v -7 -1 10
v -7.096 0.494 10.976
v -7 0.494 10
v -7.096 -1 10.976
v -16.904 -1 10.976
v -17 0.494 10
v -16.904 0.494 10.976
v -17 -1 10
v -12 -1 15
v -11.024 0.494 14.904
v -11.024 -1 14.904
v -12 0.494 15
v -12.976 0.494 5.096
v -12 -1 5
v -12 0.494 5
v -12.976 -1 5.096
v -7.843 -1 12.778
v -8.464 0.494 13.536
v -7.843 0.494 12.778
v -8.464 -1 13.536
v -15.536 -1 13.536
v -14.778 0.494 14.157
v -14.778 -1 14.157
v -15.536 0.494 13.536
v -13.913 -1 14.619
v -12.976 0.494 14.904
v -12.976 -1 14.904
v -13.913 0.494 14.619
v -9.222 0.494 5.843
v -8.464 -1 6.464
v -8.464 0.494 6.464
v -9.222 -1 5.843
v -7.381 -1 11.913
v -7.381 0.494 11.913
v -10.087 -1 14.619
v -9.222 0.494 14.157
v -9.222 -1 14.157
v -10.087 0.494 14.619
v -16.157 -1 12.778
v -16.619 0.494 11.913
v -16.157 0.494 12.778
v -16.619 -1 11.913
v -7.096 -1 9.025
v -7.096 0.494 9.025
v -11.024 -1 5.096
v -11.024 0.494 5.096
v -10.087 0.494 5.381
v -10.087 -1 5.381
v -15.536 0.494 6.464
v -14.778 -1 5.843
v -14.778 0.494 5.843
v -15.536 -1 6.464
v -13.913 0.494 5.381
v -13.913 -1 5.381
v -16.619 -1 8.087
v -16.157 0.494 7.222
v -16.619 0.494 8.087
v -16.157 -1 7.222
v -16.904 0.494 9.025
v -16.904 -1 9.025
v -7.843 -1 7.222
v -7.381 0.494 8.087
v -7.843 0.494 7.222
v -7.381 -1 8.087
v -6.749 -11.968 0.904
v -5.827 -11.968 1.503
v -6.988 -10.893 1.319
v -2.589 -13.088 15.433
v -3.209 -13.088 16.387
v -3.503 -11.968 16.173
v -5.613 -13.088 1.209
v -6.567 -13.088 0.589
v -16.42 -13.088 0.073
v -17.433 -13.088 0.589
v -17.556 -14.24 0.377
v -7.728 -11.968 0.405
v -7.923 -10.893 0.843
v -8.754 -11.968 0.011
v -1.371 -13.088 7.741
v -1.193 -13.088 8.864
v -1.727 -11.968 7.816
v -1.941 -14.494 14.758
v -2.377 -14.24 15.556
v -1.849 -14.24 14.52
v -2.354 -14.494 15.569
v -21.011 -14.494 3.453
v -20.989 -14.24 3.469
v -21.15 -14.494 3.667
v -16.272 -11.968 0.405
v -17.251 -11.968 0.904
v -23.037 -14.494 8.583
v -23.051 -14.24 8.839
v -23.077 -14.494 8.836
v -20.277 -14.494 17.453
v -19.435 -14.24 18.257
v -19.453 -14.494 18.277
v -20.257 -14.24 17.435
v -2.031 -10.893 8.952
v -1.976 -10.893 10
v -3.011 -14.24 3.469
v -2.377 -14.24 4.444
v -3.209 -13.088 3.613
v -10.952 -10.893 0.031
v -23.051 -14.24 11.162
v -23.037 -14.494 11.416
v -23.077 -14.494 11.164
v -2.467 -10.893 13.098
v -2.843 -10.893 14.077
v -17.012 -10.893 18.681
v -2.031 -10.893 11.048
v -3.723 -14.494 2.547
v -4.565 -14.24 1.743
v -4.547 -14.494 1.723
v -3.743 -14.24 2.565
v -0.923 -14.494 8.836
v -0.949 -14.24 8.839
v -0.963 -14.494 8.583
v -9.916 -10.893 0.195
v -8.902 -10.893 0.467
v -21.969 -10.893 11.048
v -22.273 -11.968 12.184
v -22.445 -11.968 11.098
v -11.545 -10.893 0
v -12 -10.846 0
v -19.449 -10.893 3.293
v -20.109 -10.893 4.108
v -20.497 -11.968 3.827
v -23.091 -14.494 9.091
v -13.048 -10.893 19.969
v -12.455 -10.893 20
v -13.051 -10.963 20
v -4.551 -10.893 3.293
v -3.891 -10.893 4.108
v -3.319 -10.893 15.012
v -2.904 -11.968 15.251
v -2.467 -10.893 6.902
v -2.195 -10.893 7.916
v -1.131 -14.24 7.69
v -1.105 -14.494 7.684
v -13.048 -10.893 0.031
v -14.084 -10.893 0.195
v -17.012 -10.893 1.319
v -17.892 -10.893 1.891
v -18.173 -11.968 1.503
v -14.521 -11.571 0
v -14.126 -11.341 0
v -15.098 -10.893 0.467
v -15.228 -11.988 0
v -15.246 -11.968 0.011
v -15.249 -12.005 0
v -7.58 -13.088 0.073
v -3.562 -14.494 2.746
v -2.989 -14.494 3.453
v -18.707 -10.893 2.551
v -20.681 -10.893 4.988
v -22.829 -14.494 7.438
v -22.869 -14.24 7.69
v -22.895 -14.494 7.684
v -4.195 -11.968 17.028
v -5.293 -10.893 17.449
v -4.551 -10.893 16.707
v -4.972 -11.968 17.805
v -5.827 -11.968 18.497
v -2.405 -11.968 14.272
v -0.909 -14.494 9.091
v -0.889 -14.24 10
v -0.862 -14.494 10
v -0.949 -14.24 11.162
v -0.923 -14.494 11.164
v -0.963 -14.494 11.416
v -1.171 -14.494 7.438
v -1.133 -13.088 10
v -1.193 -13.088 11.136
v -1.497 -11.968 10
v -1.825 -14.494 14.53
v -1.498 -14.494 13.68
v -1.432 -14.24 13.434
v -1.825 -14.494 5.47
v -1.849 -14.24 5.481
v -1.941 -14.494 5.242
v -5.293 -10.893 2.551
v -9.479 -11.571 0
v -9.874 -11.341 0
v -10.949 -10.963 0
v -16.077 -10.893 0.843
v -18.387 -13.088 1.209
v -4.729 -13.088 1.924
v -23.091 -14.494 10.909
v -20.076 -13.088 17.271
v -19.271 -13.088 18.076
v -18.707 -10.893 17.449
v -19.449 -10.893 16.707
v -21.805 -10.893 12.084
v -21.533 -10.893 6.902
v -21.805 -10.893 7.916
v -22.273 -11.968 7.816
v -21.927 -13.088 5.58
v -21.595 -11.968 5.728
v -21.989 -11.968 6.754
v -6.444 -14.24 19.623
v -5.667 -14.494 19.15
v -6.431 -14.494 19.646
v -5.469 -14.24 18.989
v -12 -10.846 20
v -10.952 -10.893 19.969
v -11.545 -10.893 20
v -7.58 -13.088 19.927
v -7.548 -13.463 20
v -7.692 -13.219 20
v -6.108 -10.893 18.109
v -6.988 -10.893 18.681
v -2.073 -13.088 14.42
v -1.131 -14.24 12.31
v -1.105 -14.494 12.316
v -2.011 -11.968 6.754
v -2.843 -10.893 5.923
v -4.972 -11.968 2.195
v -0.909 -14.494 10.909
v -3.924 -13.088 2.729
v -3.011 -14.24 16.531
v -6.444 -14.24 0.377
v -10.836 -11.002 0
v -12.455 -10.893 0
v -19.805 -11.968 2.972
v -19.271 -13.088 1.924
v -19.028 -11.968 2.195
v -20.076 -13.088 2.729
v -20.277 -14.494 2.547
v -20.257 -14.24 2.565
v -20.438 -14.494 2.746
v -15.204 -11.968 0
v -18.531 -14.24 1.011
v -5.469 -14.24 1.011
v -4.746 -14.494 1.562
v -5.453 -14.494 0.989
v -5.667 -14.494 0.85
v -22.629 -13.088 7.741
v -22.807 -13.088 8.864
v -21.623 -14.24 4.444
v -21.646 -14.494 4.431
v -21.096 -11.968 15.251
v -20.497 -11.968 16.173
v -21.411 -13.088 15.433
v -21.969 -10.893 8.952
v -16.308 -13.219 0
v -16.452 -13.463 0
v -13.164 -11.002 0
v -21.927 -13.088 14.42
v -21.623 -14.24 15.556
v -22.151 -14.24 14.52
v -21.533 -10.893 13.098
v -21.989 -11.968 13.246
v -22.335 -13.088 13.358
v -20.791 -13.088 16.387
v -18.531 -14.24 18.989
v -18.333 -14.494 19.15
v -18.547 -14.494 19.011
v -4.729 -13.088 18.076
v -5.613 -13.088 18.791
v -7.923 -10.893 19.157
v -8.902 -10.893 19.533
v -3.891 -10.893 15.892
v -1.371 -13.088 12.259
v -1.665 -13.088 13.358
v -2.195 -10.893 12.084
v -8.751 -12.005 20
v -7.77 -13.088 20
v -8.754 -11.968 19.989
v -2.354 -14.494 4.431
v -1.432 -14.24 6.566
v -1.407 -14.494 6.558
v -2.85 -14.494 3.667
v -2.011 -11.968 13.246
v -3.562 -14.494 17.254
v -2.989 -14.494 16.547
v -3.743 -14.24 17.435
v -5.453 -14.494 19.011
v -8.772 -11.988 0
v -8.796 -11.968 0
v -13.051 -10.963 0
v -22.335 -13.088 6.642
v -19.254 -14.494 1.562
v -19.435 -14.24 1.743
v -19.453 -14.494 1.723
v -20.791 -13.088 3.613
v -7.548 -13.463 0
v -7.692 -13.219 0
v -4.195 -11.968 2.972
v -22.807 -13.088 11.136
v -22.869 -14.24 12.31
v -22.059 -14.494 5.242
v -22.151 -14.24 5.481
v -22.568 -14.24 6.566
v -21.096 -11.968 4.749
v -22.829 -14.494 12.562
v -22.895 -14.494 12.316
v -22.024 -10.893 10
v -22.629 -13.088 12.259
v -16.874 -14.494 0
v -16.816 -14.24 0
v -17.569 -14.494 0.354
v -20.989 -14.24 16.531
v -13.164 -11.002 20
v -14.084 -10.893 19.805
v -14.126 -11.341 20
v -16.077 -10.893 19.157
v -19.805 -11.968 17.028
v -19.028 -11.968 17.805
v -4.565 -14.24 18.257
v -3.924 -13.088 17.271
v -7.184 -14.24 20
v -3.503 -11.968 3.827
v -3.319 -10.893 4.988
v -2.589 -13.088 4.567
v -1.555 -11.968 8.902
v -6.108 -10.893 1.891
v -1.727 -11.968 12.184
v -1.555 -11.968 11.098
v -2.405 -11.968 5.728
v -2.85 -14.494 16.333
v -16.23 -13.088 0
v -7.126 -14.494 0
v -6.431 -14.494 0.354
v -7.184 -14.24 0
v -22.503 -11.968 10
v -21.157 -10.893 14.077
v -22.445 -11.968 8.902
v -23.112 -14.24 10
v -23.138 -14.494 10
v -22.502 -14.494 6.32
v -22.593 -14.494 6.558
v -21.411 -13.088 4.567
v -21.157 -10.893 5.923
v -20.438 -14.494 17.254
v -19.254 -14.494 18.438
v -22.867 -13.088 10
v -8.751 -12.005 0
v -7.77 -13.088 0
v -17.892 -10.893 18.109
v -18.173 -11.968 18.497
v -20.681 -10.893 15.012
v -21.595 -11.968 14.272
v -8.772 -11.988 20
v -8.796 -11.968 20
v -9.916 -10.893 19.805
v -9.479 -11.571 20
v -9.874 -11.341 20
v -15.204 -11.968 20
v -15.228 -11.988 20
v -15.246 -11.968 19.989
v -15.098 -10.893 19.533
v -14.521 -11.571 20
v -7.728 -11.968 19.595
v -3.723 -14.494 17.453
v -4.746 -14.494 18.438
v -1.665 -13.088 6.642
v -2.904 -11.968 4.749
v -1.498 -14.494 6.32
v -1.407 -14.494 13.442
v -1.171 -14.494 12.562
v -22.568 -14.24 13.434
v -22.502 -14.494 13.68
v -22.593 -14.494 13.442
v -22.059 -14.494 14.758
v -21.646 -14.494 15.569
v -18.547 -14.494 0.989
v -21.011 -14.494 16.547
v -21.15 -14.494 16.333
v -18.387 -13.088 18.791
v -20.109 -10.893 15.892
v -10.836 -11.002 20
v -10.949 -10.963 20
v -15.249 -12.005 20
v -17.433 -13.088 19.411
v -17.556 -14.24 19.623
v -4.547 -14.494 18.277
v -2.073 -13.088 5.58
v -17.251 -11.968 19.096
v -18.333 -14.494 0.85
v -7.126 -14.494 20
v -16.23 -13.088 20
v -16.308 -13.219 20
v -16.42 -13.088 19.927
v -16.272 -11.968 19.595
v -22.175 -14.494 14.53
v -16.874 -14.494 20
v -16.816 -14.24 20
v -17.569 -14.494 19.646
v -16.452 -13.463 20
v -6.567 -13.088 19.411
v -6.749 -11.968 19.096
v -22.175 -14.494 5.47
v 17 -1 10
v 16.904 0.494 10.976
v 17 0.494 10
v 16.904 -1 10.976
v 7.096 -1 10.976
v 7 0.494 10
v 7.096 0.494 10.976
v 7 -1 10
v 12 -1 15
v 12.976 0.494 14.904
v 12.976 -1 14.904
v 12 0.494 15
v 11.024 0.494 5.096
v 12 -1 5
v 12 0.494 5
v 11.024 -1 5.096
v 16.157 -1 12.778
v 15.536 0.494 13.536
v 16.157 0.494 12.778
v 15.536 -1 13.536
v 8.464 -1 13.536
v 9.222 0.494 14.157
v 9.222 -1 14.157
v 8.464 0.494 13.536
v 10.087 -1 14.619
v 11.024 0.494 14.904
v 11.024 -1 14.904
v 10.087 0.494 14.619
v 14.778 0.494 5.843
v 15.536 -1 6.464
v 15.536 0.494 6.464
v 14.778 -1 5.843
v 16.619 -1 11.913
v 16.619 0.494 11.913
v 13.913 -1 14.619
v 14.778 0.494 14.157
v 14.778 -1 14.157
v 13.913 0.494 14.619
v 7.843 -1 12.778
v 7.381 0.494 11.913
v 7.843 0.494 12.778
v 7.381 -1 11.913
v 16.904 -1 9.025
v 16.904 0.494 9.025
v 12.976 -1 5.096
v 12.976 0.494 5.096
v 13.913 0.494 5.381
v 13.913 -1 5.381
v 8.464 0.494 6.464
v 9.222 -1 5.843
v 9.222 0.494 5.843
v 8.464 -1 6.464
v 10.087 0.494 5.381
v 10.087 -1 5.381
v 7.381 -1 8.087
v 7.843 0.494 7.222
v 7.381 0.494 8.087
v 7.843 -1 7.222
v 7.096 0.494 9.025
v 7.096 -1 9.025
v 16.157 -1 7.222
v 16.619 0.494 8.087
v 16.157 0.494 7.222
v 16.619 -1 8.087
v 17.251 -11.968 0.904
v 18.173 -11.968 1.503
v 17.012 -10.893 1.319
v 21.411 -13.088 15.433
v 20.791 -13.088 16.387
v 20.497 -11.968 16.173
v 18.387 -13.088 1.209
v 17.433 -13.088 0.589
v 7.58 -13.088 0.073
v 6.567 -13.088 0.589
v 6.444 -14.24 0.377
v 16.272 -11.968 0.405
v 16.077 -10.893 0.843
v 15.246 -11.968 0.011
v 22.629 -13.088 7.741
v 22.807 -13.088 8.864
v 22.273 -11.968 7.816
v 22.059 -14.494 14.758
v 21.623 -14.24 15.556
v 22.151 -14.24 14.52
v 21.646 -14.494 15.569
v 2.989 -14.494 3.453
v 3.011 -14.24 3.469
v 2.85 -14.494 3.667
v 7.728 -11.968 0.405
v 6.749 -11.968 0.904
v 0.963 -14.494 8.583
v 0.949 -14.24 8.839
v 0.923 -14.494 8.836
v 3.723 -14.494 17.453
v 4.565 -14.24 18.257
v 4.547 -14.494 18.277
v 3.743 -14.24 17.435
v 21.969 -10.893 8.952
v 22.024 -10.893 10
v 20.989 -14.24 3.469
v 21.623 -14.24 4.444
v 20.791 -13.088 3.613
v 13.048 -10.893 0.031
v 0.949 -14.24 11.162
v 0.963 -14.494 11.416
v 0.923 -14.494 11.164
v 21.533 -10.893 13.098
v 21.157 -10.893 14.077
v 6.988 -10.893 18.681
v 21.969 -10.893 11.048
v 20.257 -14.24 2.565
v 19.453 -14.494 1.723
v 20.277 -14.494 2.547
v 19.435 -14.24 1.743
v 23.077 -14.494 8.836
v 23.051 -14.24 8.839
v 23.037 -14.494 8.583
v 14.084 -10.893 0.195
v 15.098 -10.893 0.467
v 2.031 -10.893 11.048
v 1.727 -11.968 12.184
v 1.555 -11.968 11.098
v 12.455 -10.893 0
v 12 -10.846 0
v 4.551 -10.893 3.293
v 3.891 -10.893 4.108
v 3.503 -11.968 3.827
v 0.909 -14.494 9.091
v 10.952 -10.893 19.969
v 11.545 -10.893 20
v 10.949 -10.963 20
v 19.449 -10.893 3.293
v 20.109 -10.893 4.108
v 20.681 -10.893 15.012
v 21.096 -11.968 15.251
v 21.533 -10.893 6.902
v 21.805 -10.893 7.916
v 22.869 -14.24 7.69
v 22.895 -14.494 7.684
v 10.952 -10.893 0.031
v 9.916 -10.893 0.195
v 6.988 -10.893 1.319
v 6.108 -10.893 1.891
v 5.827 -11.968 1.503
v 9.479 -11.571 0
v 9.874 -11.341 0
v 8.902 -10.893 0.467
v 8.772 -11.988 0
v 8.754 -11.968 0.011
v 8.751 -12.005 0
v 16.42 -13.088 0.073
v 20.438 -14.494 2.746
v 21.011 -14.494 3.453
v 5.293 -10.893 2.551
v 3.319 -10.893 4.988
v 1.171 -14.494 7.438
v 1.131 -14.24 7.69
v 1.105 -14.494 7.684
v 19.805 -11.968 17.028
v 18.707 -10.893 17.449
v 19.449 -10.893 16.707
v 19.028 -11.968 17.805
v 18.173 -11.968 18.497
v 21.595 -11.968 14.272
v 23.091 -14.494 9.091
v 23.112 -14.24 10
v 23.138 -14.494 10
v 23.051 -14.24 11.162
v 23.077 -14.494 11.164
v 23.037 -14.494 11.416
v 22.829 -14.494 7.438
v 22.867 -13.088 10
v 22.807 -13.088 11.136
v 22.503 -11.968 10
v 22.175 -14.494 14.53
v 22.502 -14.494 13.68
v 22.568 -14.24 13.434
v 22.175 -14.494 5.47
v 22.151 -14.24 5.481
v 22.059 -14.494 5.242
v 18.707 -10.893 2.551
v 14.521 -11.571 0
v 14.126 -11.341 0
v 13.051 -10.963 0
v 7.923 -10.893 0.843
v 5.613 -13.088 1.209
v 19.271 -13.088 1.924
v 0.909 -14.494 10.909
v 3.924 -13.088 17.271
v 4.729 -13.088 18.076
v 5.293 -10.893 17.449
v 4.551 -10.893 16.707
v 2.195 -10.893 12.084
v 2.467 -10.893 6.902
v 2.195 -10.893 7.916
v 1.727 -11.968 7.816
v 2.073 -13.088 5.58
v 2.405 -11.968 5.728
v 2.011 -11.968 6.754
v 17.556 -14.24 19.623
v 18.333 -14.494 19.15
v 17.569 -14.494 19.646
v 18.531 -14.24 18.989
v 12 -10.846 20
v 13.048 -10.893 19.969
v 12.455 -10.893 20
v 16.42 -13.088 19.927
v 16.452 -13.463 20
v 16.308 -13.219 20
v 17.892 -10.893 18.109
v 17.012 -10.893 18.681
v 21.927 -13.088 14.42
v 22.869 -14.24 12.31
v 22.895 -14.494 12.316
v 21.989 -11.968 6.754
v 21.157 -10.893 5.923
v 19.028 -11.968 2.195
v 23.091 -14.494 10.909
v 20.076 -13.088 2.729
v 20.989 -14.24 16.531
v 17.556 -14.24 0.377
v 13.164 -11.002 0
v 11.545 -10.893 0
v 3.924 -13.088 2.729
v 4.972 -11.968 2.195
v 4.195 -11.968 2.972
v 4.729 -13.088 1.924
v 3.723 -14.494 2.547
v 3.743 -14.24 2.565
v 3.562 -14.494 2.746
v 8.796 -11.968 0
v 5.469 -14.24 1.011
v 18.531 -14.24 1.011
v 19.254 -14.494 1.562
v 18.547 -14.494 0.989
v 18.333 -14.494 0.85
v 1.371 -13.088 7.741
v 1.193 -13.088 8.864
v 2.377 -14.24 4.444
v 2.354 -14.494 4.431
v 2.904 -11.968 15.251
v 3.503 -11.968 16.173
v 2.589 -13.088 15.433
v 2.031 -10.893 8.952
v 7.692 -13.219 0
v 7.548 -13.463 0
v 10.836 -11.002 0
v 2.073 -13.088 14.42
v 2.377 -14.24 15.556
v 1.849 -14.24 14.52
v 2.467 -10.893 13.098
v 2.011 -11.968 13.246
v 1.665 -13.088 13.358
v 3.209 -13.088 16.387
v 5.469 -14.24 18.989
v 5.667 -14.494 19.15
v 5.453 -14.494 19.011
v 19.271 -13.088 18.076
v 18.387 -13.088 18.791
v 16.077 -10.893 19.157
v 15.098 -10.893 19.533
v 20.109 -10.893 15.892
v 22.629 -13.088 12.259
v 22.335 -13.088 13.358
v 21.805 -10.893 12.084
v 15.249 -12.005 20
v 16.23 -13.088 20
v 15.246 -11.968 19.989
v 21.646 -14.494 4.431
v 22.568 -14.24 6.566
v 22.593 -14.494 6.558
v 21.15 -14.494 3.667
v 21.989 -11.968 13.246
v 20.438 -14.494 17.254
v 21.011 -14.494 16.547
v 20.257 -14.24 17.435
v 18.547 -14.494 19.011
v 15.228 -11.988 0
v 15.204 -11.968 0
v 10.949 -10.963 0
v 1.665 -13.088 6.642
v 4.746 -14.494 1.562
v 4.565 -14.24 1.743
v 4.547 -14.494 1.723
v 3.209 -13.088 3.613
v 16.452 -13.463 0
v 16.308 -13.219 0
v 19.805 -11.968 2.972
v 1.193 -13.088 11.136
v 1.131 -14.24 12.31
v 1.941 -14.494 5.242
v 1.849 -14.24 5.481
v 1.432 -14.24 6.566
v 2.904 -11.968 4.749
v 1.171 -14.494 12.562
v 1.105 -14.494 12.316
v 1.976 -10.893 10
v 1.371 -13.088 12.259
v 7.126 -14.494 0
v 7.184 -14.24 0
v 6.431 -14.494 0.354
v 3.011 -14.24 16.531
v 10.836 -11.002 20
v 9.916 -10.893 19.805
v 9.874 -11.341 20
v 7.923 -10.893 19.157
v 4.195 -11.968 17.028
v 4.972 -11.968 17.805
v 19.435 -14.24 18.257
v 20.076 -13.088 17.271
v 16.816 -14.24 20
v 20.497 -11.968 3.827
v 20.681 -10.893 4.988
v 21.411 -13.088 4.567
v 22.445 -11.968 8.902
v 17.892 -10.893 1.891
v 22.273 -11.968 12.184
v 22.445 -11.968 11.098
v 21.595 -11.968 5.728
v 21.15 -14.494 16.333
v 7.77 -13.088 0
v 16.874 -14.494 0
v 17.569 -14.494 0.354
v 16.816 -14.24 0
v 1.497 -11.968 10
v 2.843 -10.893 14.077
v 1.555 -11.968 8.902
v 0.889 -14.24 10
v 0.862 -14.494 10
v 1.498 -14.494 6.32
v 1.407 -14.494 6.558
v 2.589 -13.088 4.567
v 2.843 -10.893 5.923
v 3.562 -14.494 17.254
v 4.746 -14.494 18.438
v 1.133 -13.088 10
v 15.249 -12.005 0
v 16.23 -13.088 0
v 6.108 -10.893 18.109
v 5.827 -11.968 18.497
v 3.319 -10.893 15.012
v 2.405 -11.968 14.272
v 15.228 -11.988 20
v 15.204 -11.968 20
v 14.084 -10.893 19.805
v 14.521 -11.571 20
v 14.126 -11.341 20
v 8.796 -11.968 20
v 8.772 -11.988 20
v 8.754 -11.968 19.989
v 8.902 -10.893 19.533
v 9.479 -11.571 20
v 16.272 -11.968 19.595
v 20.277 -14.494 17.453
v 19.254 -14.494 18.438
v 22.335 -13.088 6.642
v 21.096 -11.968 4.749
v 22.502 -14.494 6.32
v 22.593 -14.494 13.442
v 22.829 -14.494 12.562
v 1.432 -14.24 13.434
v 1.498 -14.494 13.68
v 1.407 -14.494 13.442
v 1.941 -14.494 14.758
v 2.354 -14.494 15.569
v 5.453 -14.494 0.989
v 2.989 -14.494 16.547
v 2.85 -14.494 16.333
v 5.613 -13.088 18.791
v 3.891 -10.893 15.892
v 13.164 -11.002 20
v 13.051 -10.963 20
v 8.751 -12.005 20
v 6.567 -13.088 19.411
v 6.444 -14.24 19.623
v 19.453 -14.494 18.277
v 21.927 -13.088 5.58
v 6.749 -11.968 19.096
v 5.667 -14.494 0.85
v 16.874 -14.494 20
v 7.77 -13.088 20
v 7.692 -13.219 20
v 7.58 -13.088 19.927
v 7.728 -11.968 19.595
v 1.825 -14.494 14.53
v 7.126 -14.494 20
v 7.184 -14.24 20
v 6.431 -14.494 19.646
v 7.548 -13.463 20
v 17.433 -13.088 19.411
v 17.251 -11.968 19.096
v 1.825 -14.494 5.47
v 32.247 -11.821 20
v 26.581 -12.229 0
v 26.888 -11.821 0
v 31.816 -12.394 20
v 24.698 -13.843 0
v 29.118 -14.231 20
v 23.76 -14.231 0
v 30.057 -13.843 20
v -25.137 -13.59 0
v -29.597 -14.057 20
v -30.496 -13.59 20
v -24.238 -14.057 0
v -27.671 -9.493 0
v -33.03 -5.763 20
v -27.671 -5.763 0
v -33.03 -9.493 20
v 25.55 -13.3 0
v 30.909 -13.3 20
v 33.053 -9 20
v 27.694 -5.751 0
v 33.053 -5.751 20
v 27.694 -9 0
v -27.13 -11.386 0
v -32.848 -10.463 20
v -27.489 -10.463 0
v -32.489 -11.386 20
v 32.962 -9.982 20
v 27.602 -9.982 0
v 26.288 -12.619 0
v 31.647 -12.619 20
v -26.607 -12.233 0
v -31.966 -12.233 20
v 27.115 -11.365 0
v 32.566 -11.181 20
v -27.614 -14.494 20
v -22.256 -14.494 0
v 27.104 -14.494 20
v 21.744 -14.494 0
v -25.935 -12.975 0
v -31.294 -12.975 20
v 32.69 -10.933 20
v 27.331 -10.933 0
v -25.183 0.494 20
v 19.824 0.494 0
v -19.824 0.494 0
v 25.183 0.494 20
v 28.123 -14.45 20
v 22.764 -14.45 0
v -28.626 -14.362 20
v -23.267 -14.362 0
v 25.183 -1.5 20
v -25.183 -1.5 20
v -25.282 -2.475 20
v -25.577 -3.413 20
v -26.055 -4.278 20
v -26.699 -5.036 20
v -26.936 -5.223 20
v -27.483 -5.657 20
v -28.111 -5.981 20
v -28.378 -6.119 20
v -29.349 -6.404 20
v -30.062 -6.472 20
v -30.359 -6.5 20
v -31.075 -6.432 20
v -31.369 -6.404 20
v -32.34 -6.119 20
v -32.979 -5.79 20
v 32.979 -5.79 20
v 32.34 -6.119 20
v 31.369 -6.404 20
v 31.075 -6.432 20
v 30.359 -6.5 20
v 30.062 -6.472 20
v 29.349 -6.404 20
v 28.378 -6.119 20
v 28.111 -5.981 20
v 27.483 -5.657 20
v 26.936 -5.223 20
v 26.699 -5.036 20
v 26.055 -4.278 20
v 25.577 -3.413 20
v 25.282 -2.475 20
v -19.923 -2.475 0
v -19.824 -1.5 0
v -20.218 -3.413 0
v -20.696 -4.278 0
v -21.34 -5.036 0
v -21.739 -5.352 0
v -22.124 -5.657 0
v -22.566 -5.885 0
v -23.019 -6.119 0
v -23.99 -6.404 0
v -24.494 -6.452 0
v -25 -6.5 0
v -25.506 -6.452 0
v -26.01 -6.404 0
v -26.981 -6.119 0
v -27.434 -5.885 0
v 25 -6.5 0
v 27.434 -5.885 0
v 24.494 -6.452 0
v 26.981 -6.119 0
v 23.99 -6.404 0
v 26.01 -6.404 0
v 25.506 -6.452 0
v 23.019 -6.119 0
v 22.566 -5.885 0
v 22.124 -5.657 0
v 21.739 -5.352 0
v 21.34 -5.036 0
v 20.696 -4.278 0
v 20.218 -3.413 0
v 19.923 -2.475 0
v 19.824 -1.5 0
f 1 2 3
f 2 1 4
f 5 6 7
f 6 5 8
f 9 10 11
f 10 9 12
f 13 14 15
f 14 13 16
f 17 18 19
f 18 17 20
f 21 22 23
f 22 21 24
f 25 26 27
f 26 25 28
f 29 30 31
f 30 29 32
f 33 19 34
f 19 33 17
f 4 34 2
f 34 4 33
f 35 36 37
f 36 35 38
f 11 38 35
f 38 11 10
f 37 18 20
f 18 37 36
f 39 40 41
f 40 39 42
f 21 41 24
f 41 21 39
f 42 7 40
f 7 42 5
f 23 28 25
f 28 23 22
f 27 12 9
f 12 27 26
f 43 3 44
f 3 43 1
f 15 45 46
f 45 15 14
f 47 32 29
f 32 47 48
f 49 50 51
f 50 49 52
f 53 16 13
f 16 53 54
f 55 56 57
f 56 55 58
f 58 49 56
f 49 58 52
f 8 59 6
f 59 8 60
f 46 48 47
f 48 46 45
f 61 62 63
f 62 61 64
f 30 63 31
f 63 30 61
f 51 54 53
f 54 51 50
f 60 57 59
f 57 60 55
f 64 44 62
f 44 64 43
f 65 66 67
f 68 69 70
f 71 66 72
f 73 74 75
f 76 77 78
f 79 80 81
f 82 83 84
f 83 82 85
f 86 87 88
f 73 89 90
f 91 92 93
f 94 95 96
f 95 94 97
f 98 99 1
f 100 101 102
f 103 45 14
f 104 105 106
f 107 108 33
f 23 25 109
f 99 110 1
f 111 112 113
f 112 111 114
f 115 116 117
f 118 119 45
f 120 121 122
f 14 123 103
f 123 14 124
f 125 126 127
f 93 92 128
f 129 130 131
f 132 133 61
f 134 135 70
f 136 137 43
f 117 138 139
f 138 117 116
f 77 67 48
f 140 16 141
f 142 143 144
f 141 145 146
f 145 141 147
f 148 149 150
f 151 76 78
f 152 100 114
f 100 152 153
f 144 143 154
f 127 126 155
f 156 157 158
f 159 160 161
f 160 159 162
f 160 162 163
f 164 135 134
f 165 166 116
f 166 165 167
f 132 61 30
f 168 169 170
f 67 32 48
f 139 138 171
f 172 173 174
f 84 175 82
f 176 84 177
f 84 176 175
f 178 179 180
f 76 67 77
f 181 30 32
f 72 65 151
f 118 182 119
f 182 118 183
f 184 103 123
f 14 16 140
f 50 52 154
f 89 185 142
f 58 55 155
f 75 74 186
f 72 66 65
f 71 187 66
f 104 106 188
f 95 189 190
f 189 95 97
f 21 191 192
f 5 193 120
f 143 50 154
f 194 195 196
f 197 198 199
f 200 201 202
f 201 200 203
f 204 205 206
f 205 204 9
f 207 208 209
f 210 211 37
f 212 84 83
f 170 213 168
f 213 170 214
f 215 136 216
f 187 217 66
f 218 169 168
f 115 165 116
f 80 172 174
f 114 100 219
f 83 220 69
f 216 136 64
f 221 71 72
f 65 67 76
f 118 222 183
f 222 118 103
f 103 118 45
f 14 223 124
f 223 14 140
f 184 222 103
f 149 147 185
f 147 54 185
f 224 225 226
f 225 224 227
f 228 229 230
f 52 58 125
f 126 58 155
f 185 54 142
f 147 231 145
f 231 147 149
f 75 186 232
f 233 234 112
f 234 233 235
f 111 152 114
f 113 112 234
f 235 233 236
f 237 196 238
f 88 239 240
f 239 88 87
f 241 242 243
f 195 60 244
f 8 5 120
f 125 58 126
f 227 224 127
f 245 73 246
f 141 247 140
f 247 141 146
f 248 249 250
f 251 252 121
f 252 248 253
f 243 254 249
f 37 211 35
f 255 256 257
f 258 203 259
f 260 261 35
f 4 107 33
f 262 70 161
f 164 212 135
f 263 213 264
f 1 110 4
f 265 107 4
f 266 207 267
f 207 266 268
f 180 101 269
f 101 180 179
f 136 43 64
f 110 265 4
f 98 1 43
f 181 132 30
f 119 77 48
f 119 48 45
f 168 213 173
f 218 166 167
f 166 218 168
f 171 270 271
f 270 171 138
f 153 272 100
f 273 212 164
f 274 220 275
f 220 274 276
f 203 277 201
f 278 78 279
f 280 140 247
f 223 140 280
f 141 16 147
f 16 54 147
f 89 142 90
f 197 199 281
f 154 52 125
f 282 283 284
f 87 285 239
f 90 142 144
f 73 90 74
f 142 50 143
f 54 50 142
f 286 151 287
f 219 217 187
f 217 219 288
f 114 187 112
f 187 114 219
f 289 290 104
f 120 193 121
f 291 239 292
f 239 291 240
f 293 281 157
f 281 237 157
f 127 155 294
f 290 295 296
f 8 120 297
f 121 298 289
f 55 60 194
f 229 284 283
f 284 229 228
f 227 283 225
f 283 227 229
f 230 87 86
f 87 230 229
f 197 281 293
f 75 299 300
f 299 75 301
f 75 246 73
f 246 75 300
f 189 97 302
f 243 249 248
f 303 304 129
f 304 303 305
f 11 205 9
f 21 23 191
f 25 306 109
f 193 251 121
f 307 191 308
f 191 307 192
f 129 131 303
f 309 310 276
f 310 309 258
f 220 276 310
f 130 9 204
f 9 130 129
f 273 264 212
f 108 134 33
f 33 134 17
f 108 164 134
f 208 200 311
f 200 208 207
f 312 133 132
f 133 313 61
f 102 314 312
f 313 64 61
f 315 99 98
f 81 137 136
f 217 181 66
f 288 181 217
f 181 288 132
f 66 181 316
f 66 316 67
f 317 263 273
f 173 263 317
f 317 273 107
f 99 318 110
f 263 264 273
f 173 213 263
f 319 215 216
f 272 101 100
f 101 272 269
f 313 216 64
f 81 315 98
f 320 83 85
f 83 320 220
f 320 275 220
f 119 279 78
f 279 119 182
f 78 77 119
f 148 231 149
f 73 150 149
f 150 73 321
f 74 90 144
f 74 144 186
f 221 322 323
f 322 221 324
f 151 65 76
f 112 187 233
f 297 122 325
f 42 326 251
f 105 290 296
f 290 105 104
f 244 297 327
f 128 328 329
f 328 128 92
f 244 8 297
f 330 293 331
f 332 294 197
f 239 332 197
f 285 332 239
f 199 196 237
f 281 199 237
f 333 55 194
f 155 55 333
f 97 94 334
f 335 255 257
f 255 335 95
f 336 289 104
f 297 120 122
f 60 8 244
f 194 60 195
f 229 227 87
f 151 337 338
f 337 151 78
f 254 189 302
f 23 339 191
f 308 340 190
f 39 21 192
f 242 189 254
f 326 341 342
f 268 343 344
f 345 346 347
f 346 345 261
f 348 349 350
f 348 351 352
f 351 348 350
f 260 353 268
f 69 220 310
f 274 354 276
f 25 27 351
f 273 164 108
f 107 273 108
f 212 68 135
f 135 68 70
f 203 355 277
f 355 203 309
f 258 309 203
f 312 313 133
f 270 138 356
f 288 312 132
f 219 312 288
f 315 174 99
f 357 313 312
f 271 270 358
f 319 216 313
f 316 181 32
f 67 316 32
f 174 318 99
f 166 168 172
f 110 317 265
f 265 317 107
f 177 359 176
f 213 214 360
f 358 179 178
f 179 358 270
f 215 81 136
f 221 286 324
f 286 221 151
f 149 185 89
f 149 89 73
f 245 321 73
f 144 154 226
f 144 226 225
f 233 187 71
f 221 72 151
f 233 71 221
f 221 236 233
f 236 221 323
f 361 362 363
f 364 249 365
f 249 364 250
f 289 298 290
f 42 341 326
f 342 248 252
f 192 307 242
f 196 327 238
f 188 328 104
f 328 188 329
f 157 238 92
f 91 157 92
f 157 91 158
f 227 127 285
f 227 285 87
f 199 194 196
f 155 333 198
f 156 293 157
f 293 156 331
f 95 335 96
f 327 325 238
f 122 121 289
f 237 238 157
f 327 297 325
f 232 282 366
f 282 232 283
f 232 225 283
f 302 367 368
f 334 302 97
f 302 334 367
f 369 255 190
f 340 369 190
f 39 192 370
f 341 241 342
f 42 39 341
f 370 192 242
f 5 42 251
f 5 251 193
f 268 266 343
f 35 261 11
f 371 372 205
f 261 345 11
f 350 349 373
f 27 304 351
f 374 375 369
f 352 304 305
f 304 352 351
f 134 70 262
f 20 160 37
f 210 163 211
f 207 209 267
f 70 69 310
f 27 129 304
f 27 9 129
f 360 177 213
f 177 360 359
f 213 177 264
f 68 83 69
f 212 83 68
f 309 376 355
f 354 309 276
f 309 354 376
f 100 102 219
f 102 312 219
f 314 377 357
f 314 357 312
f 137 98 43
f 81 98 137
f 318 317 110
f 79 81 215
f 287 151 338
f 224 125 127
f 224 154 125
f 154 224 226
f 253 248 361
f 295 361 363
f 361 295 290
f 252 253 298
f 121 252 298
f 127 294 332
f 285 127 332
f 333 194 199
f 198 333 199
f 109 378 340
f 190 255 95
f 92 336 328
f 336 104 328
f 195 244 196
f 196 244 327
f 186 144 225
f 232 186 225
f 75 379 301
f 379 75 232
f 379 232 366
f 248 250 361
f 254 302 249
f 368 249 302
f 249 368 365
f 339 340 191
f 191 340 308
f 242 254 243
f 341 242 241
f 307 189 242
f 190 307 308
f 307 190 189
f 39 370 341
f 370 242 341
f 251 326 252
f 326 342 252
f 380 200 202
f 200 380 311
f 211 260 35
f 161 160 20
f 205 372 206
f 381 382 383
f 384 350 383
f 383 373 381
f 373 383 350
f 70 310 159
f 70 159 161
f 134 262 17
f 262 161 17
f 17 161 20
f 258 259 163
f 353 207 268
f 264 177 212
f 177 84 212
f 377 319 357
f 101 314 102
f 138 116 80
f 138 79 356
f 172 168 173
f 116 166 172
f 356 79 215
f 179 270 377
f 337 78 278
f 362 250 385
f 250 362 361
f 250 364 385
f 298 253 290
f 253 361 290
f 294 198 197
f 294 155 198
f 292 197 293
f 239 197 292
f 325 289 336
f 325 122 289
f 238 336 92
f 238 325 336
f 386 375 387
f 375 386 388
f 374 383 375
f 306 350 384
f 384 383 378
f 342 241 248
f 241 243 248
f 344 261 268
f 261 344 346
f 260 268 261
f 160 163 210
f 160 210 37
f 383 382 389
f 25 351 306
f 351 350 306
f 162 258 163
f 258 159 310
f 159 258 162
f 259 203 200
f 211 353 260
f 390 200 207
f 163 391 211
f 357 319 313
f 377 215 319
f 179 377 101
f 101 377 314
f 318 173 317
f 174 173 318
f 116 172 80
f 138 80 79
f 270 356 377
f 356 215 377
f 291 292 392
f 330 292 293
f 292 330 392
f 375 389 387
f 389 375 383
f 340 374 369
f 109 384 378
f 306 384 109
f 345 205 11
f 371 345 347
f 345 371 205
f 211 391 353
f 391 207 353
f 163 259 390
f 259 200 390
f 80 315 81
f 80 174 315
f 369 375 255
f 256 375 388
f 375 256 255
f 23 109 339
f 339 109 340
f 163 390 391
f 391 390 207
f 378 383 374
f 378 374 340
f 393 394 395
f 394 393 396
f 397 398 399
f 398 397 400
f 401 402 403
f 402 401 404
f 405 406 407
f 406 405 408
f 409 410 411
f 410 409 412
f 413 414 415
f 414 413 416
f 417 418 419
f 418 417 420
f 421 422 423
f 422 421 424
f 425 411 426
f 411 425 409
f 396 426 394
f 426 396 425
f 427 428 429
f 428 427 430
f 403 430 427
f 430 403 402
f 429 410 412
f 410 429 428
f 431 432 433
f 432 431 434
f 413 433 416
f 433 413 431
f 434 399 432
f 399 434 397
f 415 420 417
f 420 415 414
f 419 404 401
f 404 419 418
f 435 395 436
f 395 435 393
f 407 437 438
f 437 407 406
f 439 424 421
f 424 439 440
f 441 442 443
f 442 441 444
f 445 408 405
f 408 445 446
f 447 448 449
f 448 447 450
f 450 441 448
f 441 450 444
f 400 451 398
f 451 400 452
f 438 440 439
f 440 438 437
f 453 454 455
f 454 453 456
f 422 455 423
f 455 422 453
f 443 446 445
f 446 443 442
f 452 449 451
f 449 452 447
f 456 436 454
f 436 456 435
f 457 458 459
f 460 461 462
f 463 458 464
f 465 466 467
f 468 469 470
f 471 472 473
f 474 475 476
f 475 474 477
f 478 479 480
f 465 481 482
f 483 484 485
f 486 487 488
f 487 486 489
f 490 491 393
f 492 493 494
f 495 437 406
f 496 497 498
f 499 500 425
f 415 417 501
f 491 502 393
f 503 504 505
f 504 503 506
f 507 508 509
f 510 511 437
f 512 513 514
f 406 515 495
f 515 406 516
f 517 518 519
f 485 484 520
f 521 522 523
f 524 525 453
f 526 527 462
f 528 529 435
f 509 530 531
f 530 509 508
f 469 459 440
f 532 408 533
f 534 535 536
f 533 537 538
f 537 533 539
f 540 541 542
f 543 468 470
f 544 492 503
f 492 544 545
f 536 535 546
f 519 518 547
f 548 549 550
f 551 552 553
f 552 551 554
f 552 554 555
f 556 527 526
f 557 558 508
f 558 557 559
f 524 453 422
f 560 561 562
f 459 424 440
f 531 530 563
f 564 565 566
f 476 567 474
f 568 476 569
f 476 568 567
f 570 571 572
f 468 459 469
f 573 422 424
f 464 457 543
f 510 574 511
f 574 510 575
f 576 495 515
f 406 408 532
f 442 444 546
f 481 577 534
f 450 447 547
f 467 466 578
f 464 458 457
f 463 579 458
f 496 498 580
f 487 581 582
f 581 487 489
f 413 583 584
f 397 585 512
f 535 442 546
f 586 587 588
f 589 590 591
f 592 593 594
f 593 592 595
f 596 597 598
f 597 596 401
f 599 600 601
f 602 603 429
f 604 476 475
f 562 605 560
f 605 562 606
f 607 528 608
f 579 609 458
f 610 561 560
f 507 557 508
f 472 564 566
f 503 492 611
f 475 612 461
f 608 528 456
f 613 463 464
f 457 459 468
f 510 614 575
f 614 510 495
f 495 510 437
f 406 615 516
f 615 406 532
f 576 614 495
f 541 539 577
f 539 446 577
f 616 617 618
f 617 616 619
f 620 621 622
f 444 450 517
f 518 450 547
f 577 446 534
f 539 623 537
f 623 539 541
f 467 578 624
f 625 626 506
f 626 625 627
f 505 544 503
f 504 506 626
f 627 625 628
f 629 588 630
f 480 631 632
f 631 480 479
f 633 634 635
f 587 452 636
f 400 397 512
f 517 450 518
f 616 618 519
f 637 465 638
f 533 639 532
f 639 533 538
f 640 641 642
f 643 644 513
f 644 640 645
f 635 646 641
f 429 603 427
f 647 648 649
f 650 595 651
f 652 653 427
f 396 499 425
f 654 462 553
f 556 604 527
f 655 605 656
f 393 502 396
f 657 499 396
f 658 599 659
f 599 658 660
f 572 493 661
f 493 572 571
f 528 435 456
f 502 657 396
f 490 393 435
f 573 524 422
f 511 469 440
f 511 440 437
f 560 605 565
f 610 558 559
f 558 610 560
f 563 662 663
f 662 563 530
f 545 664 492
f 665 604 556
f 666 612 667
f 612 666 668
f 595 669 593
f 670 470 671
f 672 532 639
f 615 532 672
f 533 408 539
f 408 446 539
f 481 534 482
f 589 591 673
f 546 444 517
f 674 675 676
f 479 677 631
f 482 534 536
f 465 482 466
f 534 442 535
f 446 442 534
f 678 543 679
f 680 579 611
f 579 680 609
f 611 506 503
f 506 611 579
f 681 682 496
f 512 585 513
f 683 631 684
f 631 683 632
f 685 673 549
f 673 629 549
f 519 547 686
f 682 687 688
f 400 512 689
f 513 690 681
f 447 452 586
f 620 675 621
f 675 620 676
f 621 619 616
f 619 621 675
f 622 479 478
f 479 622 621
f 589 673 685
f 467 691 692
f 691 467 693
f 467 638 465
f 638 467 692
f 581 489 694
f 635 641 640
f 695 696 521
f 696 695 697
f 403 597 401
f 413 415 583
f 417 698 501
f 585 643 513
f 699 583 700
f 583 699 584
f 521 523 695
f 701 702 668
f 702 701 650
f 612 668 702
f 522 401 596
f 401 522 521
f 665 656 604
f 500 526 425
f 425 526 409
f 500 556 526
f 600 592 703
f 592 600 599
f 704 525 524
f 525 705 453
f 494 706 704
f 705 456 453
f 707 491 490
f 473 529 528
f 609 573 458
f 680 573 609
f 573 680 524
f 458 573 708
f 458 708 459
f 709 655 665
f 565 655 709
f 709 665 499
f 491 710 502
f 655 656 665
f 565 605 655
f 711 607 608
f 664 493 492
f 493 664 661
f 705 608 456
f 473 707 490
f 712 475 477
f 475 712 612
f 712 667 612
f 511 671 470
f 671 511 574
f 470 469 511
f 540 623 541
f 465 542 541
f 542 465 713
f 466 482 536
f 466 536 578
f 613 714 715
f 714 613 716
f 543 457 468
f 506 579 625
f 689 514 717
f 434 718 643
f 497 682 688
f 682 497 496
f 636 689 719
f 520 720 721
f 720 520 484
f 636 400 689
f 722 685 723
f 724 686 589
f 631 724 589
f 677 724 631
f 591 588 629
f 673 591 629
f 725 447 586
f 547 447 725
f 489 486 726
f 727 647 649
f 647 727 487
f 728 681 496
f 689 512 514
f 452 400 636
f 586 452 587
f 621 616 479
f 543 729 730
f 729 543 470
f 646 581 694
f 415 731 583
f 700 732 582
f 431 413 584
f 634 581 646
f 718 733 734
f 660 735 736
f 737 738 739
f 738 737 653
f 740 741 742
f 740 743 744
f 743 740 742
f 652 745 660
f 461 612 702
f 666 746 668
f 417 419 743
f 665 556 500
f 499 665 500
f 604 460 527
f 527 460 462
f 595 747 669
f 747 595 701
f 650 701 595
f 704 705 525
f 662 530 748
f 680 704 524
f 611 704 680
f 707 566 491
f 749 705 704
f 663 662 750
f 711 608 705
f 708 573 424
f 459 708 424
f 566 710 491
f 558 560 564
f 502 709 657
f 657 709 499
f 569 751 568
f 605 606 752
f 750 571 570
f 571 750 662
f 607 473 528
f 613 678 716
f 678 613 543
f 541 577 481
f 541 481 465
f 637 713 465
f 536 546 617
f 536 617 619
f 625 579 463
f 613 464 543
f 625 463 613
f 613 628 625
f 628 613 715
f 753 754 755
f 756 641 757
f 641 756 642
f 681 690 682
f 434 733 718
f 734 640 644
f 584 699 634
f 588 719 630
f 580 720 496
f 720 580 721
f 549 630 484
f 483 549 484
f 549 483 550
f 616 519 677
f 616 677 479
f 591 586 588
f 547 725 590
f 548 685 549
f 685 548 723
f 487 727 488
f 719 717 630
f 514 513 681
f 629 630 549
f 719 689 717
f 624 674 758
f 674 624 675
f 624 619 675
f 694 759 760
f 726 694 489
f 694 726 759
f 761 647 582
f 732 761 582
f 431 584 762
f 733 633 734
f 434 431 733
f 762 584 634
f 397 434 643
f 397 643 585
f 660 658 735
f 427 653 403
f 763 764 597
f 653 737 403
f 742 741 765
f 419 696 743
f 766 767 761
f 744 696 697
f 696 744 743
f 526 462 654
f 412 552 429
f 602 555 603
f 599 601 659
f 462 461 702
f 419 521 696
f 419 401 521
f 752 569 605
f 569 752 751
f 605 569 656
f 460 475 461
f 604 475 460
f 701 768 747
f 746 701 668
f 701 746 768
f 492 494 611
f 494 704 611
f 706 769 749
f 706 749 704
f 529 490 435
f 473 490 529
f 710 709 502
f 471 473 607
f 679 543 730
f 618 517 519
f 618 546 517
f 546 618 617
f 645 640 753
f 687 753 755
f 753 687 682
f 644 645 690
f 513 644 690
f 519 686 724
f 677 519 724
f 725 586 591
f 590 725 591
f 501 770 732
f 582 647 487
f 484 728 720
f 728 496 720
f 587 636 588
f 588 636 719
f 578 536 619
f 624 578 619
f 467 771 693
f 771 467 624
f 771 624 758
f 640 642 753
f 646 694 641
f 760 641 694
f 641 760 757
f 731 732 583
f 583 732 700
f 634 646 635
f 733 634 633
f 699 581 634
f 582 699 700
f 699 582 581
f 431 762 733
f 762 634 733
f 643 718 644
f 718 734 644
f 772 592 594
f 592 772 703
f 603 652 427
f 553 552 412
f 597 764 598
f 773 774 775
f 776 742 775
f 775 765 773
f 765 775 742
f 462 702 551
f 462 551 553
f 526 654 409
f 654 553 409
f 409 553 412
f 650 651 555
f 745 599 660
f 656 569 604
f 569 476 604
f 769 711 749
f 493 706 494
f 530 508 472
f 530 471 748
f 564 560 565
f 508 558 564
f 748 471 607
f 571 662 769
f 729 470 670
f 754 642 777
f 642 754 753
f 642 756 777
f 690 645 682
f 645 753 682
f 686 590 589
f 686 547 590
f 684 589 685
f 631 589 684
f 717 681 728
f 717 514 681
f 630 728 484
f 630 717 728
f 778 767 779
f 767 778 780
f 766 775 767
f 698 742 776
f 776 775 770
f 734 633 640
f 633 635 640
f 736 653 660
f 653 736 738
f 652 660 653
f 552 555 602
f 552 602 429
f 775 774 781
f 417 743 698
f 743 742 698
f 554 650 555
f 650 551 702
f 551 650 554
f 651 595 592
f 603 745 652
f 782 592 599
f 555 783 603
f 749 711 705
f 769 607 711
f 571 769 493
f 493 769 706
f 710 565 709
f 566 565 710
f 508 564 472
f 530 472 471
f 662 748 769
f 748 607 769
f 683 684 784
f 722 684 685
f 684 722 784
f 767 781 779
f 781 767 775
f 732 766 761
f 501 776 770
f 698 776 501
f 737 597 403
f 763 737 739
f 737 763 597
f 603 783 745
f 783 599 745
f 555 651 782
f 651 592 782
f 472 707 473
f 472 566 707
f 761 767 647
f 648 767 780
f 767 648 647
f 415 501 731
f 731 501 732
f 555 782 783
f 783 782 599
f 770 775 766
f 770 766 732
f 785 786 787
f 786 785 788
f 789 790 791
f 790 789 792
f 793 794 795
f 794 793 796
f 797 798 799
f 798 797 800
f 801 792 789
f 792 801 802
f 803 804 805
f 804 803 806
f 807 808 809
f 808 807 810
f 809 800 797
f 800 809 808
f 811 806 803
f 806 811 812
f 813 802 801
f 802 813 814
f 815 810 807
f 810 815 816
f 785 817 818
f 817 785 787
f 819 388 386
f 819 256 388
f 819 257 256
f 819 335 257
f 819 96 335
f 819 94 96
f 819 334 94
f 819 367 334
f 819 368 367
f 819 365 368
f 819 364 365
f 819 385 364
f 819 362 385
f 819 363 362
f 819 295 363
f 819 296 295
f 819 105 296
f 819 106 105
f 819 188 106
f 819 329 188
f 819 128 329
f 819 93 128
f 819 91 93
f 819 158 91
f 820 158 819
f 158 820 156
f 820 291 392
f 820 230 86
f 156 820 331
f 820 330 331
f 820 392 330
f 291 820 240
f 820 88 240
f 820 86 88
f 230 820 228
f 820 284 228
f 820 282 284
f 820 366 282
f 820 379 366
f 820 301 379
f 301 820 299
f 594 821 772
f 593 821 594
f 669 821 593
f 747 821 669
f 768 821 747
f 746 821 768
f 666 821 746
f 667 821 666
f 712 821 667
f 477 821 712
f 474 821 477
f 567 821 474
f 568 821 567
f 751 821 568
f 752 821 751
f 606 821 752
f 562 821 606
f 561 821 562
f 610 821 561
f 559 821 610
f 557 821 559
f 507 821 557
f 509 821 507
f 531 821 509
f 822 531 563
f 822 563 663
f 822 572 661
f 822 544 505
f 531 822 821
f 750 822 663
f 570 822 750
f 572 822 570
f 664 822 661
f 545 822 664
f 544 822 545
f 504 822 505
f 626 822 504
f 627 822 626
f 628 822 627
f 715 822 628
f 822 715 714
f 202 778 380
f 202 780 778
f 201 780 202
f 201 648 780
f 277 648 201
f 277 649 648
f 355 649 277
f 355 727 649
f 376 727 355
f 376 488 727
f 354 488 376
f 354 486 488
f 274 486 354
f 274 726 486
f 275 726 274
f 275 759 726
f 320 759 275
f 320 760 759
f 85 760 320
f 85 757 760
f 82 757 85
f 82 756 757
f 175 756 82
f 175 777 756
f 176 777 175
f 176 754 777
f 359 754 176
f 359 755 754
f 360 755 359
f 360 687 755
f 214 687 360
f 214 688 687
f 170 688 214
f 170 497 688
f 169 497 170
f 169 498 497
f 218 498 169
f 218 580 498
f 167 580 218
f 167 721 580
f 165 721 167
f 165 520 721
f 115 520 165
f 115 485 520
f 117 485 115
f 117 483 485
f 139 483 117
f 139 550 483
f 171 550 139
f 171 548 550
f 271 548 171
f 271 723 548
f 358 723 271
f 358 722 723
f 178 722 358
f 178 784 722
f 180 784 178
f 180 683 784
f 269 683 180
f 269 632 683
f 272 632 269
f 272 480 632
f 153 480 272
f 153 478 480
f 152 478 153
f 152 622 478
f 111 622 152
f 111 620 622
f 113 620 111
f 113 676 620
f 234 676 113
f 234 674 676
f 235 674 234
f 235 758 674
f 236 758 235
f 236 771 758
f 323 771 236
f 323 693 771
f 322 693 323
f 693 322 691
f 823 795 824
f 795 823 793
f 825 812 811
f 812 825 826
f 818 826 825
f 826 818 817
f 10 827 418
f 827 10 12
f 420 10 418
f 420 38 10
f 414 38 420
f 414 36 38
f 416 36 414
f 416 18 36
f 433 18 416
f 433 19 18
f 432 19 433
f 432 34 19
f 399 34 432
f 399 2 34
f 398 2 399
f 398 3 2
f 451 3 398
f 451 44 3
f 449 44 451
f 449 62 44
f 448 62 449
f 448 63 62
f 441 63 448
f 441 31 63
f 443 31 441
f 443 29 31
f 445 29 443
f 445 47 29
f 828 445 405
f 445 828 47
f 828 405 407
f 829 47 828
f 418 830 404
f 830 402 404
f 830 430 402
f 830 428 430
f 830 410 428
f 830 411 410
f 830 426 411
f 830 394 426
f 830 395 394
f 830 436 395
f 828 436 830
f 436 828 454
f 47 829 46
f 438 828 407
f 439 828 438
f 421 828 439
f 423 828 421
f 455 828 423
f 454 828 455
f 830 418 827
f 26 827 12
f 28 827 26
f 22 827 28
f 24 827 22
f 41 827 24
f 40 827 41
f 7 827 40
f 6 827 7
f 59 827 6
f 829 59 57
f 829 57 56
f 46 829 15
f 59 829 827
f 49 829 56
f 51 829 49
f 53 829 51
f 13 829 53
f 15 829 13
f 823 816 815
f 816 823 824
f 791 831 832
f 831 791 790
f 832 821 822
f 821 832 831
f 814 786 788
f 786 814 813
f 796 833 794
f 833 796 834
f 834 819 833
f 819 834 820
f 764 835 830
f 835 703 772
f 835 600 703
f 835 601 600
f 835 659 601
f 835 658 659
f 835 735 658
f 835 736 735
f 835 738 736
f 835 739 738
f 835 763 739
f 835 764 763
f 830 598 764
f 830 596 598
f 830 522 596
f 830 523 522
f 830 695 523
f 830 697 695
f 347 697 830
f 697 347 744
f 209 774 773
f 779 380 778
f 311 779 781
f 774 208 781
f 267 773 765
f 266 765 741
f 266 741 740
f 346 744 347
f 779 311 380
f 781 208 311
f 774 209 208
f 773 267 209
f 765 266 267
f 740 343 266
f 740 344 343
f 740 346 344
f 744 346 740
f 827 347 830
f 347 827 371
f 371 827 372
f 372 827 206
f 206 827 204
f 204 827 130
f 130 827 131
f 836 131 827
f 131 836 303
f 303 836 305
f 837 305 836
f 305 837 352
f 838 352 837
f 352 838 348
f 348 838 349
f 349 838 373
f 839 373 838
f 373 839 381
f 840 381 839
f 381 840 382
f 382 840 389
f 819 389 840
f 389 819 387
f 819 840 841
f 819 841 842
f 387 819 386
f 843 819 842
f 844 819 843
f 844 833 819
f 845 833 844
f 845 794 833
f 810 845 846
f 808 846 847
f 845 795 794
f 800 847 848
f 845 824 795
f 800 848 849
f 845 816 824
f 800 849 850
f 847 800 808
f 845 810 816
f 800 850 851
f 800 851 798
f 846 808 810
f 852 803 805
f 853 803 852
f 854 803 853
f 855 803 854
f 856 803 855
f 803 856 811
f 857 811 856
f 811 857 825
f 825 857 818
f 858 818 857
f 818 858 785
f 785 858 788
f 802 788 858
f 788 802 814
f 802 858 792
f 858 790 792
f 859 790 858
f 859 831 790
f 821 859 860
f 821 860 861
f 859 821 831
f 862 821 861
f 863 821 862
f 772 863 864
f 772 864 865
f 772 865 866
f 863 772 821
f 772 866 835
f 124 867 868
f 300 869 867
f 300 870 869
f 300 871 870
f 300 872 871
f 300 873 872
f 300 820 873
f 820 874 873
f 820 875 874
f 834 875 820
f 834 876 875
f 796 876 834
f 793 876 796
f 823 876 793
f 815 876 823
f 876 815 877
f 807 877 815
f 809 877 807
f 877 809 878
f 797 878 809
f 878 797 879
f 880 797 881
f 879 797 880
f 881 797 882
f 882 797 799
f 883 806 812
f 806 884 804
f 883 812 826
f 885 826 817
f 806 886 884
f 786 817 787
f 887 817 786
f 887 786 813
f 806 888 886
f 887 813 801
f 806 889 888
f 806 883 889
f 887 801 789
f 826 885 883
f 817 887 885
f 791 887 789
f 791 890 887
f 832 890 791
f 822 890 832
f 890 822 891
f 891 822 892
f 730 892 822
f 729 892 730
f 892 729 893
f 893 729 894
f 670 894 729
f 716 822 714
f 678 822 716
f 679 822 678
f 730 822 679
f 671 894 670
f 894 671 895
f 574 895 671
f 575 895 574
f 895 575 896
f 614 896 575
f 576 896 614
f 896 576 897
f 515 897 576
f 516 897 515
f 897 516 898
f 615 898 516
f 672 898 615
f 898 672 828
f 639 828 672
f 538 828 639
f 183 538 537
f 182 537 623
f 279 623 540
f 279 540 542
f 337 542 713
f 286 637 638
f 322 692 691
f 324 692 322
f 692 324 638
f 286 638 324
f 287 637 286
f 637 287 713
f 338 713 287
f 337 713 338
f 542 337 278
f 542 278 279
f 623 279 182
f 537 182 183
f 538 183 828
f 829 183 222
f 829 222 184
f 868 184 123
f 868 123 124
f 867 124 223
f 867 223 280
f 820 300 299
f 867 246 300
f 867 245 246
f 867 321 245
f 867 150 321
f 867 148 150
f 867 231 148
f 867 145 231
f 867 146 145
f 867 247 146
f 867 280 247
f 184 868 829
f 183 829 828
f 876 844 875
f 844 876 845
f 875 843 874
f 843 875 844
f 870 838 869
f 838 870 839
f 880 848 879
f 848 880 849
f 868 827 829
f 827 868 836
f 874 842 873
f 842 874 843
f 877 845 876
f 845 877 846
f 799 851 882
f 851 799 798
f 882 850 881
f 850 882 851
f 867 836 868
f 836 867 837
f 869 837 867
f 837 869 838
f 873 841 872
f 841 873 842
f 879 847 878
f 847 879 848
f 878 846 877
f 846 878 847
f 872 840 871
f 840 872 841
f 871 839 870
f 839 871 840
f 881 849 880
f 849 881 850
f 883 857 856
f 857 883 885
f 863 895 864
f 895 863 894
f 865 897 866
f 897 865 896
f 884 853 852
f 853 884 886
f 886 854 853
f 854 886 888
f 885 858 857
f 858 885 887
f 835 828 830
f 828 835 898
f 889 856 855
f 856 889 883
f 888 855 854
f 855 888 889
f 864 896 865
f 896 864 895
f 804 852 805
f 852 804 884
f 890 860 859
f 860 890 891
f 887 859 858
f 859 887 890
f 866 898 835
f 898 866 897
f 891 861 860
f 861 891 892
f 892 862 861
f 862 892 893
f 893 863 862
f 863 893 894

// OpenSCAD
$fs = 1;
$fa = 6;

module _ry() {
    rotate([90,0]) children();
}
module _rx() {
    rotate([0,90]) children();
}

module tube(inflate = 0) {
  hull() {
    for (yy=[0.5 + inflate/2, -0.5 - inflate/2]) {
      translate([0, yy, 0]) cylinder(d=8 + inflate, h=100, center=true);
    }
  }
}

module seatTubes(dist = 25, inflate = 0) {
  for (xx=[-dist, dist]) {
    translate([xx, 0, 0]) rotate([0, 15 * sign(xx)]) tube(inflate);
  }
}

module co2(args) {
  cylinder(d=10, h=10, center=false);
  translate([0, 0, -0.5]) cylinder(d=12.5, h=3.5, center=false);
  hull() {
    translate([0, 0, 100]) sphere(d=22.5);
    translate([0, 0, 25]) sphere(d=22.5);
    translate([0, 0, 10]) cylinder(d=10, h=1, center=false);
  }
}

module tanks(args) {
  for (xx=[-12, 12]) {
    translate([xx, 0, 10]) _ry() co2();
  }
}

module backPlate(args) {
  difference() {
    intersection() {
      hull() seatTubes(dist=30);
      translate([0, 0, 10]) cube(size=[100, 6.5, 20], center=true);
    }
  }
}
module frontPlate(args) {
  difference() {
    intersection() {
      hull() {
        seatTubes(dist = 22, inflate=3);
      }
      translate([0, 0, 10]) cube(size=[100, 100, 20], center=true);
    }
  }
}

difference() {
  union() {
    *translate([0, 6]) backPlate();
    translate([0, -7]) frontPlate();
  }
  seatTubes(inflate = 2);
  translate([0, 9]) tanks();
}
